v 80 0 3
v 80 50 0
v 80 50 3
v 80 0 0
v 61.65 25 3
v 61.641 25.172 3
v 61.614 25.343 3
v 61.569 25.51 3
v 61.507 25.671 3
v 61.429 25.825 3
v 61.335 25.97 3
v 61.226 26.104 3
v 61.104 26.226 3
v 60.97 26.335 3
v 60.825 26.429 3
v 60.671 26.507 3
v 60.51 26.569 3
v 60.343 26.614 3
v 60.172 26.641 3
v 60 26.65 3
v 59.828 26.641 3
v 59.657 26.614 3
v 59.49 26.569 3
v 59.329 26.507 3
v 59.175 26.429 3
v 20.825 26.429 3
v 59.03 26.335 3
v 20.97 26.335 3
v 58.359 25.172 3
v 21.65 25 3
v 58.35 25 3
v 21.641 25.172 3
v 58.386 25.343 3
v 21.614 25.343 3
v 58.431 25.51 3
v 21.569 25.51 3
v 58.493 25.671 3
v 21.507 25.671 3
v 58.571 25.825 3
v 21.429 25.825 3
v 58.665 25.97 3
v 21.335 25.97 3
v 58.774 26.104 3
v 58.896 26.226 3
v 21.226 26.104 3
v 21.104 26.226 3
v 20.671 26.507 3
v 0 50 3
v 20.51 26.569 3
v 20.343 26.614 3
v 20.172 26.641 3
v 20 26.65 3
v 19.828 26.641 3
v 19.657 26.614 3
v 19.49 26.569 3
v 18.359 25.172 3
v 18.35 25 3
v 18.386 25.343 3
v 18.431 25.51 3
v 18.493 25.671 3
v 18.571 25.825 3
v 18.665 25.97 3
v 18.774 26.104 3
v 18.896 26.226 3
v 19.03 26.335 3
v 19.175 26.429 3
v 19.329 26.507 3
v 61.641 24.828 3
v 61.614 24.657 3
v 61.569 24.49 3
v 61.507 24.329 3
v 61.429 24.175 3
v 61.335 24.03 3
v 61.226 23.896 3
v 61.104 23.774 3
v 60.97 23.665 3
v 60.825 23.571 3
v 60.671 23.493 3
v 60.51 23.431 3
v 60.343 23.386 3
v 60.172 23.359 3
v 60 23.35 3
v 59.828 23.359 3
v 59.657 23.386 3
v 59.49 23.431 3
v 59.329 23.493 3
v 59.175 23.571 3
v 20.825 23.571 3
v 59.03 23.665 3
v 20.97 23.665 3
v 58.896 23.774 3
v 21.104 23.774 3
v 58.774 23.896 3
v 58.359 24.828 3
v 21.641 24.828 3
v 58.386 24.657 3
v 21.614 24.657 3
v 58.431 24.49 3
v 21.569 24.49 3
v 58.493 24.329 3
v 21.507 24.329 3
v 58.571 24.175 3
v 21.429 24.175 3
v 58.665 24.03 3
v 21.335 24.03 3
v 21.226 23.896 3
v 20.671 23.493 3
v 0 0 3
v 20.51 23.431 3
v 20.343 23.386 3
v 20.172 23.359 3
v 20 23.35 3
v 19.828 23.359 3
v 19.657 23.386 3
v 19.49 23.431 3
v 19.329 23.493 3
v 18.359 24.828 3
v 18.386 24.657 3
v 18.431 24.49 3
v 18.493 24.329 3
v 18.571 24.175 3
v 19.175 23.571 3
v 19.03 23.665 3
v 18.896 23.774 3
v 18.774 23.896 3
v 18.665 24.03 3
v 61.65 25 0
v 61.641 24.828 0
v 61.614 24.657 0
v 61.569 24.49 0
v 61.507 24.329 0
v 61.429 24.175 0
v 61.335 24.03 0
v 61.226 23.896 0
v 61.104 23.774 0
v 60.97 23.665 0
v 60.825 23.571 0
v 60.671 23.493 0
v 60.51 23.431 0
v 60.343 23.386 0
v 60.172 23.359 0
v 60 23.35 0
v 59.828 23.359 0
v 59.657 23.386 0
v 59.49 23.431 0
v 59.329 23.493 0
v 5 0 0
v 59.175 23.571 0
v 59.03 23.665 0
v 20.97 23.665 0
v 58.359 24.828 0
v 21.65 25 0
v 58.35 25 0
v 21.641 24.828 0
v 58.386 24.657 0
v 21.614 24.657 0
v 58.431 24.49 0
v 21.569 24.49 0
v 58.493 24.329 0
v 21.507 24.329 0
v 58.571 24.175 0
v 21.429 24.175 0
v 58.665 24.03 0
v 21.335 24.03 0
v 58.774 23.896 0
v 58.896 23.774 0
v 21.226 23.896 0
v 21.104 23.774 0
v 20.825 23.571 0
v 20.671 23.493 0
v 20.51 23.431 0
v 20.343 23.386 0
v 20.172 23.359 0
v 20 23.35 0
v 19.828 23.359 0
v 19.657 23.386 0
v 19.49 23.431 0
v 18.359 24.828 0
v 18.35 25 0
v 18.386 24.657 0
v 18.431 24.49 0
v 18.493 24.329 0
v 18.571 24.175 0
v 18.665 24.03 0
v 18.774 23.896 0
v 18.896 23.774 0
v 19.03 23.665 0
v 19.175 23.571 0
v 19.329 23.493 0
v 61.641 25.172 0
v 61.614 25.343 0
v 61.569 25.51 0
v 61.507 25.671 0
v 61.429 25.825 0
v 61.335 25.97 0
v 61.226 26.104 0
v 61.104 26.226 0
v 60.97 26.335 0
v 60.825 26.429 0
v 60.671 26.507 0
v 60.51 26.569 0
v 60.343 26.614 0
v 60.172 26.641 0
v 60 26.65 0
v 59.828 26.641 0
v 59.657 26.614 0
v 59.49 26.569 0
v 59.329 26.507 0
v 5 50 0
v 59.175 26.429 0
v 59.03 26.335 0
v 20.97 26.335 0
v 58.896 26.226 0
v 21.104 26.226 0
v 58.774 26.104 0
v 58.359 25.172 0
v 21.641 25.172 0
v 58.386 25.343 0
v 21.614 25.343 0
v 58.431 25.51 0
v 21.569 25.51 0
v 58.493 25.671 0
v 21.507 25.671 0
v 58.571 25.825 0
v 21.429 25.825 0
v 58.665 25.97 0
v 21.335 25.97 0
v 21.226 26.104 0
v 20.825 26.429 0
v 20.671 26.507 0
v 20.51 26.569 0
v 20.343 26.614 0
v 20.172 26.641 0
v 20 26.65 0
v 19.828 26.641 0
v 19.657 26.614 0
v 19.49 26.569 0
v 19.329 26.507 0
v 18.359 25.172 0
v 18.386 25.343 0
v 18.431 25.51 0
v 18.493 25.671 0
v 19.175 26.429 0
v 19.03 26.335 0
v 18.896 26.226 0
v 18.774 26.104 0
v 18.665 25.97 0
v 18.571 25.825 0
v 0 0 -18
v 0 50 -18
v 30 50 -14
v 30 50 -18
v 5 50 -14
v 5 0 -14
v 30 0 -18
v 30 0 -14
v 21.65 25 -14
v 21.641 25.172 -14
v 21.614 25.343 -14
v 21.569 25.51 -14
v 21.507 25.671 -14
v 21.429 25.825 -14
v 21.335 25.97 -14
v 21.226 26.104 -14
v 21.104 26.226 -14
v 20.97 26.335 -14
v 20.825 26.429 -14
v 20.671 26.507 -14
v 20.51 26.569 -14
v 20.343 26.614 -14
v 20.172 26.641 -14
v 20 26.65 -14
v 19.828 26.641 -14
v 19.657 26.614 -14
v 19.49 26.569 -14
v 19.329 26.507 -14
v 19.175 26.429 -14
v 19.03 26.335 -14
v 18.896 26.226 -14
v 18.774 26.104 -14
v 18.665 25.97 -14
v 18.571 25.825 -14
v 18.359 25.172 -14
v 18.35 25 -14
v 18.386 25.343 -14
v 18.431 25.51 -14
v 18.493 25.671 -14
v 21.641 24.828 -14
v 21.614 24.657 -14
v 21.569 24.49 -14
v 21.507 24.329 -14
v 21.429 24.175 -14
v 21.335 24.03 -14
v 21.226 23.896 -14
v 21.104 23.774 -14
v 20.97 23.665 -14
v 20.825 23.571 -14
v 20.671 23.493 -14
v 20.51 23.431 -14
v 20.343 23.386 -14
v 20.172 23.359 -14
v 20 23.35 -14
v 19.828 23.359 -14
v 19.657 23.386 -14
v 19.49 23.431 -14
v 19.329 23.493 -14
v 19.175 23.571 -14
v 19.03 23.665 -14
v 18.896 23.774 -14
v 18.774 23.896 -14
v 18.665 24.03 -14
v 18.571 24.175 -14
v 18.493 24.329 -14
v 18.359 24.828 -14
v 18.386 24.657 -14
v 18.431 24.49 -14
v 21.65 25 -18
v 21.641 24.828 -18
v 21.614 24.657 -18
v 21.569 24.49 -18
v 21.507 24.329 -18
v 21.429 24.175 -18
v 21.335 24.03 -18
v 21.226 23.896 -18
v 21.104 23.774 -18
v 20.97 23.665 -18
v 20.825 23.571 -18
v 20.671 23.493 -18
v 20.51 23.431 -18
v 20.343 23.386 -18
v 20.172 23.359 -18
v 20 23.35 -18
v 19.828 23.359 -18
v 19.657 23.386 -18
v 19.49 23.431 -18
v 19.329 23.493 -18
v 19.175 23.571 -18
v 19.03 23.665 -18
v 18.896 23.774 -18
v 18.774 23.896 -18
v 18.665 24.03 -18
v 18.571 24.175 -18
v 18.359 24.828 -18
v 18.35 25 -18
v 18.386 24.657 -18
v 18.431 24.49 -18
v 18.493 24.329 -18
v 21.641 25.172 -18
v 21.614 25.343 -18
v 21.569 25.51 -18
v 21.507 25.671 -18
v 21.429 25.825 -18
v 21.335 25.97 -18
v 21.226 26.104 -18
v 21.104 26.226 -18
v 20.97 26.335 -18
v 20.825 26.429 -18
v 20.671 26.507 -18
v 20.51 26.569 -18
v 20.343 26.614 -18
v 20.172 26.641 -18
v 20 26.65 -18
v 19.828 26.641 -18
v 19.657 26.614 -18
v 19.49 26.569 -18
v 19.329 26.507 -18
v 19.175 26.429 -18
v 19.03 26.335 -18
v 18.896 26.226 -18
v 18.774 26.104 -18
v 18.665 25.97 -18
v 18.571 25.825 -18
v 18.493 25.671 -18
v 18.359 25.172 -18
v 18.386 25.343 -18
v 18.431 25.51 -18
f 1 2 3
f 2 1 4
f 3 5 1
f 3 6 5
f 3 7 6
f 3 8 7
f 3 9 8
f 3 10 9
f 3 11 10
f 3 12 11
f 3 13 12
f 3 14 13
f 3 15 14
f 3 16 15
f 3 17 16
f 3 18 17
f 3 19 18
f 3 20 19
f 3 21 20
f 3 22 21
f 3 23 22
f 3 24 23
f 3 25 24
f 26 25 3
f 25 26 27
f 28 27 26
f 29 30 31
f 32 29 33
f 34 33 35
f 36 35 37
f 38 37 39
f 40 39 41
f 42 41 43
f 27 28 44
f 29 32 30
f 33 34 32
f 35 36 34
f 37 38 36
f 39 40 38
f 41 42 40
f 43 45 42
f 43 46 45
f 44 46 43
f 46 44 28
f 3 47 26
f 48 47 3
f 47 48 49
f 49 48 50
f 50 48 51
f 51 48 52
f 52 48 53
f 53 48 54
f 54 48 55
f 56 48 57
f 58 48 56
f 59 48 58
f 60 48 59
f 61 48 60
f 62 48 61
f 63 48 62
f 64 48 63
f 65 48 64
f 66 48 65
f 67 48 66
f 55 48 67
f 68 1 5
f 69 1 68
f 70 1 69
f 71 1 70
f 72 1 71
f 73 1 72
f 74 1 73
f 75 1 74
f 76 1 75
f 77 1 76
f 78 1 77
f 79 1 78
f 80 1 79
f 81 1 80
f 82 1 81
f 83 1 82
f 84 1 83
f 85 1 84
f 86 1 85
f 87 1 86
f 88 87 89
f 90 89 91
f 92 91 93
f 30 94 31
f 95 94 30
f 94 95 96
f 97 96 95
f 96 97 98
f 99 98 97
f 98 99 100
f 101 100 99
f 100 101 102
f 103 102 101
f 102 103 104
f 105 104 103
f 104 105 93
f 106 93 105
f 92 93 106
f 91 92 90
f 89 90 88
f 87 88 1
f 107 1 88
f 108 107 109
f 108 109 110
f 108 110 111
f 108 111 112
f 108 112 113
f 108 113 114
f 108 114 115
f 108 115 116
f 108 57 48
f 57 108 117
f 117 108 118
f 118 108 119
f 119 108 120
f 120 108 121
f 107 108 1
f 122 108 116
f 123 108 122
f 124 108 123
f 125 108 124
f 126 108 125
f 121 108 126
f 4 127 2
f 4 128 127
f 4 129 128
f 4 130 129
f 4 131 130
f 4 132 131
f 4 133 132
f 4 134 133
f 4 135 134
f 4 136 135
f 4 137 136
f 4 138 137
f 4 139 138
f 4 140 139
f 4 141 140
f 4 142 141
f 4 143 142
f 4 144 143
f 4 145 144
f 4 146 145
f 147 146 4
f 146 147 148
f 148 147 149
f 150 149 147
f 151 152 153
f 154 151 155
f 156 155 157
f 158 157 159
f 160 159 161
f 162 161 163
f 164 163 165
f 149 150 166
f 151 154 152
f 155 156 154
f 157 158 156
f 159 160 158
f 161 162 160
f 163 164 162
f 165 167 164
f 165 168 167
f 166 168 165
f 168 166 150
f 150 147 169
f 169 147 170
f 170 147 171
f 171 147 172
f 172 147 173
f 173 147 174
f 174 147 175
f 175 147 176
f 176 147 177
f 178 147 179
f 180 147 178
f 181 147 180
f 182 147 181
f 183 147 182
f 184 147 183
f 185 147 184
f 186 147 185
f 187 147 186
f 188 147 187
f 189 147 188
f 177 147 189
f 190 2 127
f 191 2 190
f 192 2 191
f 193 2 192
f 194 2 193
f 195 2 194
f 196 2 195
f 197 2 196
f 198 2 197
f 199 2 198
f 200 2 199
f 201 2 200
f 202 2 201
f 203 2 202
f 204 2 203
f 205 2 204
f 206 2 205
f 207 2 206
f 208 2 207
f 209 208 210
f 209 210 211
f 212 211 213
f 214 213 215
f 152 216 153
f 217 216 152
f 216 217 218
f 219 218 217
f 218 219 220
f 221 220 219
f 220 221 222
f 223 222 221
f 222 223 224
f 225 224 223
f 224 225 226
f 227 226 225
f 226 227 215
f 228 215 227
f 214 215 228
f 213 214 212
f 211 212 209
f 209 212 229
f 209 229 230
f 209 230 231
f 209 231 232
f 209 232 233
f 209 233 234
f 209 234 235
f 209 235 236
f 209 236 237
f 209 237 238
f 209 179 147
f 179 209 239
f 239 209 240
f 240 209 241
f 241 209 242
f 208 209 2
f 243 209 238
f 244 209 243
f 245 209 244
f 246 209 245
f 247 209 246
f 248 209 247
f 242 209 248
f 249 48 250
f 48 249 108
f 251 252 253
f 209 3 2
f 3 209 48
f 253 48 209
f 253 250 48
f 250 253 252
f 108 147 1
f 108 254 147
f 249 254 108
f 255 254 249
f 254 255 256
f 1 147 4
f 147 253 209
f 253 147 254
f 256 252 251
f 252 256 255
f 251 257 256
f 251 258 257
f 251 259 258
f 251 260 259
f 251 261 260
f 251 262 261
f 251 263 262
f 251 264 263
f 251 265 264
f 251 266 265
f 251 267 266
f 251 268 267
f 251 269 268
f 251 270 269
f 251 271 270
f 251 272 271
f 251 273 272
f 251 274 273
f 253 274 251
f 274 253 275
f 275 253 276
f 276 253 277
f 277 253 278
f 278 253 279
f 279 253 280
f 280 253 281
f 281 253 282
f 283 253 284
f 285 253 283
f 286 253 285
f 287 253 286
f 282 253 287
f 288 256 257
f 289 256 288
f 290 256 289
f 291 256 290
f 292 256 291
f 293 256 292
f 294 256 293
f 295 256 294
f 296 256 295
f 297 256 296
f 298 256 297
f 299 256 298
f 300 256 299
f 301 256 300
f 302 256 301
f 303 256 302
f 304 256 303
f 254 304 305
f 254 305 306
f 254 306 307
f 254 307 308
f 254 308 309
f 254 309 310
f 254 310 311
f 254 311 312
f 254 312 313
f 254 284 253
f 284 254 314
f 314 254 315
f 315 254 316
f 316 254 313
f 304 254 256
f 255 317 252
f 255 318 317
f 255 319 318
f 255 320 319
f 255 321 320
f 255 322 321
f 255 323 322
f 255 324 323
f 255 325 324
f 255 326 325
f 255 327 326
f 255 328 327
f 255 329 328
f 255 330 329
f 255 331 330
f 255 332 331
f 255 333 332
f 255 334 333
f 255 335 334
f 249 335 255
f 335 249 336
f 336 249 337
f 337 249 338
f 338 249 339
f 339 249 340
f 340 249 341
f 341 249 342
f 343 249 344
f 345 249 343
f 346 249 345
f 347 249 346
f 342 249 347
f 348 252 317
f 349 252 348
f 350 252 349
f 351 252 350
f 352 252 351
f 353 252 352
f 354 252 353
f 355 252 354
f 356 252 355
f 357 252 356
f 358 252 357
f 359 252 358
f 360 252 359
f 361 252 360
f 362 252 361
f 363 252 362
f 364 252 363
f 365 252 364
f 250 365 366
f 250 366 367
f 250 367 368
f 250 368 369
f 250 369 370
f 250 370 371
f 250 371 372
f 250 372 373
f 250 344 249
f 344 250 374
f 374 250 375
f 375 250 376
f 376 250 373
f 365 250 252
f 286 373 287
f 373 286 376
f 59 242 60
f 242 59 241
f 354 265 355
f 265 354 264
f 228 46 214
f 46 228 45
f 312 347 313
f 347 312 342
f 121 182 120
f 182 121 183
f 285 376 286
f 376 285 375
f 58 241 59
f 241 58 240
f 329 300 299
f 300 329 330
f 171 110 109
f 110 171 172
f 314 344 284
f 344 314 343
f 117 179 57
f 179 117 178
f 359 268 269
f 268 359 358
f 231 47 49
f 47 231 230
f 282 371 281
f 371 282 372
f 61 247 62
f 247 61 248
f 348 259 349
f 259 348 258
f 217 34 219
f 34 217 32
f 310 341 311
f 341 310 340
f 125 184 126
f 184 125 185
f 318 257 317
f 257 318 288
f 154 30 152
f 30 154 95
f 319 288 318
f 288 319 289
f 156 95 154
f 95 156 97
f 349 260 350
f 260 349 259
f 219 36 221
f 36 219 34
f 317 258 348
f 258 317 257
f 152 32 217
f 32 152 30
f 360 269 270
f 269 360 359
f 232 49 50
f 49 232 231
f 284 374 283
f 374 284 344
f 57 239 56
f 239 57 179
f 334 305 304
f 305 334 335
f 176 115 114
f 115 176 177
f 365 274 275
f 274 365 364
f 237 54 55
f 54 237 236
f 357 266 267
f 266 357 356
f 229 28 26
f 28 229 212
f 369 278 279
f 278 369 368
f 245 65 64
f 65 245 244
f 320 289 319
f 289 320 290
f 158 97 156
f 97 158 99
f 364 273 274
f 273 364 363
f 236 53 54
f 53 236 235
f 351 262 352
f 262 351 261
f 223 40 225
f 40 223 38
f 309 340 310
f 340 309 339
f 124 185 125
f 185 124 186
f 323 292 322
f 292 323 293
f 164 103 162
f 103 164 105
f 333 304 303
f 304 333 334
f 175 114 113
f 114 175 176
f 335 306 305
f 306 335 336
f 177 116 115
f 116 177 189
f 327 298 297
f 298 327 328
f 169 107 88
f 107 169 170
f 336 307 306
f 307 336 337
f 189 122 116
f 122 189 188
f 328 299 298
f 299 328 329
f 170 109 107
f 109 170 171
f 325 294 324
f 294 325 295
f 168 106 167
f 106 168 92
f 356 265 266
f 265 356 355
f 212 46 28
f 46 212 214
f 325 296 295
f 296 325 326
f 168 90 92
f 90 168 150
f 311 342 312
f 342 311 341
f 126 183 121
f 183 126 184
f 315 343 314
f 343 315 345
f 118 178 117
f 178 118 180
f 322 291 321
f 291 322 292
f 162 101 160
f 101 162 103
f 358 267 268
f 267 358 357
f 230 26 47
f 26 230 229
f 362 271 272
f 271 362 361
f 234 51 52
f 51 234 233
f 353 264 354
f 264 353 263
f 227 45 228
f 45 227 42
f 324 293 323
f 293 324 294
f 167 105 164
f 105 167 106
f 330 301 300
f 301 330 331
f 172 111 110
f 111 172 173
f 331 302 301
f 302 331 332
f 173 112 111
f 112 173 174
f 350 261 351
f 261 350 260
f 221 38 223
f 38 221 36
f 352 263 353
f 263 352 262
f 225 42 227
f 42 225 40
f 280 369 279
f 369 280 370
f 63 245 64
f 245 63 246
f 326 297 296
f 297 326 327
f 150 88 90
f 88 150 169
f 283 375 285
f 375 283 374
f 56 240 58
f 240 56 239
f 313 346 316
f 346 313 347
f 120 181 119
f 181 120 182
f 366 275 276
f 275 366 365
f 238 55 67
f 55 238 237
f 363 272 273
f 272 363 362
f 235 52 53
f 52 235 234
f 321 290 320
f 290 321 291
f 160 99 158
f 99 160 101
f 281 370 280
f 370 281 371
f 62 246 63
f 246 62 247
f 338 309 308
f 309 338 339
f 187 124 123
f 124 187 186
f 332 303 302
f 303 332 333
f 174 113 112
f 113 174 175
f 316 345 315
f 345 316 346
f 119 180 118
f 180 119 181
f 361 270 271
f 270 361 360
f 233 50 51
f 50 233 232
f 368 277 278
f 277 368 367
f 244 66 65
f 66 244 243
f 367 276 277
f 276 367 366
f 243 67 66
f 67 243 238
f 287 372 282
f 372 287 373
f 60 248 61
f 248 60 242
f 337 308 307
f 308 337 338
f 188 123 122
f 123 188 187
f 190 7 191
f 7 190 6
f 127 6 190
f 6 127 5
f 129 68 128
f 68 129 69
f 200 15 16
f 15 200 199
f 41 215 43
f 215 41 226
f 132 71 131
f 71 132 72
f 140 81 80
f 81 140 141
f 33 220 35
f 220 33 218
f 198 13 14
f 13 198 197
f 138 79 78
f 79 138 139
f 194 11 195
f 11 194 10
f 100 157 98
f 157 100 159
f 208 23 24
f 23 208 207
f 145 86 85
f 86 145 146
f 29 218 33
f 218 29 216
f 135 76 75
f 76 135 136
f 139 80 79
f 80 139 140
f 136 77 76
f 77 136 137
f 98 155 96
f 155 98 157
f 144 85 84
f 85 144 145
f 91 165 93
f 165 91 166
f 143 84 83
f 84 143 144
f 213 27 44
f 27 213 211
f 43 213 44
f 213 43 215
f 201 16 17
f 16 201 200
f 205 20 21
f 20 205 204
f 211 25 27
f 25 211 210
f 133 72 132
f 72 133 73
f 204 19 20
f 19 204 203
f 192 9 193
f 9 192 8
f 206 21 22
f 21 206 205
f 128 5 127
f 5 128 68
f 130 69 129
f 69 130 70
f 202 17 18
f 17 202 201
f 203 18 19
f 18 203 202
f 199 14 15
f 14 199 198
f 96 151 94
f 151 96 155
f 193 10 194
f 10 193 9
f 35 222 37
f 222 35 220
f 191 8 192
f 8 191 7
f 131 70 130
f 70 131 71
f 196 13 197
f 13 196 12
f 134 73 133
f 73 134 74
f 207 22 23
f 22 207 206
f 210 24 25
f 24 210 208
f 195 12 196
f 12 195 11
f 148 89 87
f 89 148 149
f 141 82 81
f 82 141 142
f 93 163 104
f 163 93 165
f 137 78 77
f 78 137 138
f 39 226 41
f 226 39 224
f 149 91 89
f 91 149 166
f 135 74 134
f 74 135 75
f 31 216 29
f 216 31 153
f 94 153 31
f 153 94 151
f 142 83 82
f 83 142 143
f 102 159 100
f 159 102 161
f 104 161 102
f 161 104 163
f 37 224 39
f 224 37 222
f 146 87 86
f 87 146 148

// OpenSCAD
// file: ../00_common/parameters.scad
// =============================================================================
// OpenMotorBridge - Global CAD Parameters & Settings
// =============================================================================
// File: hardware/cad/scad/00_common/parameters.scad
// Description: Global dimensional constants, manufacturing clearances and
//              circle resolution ($fn) for all OpenSCAD modules.
// =============================================================================

// --- 1. Circle & Curve Resolution ---
$fn = 60; // Smooth cylinders and holes for high-quality MJF 3D printing

// --- 2. Central Main Box Dimensions (3-Tier Sandwich) ---
MAIN_BOX_OUTER_L      = 110.0; // Outer length in X (mm)
MAIN_BOX_OUTER_W      = 74.0;  // Outer width in Y (mm)
MAIN_BOX_LOWER_H      = 17.0;  // Lower case height in Z (mm)
MAIN_BOX_MID_H        = 15.0;  // Mid tray height in Z (mm)
MAIN_BOX_LID_H        = 4.0;   // Lid plate thickness in Z (mm)
MAIN_BOX_WALL         = 2.5;   // Nominal wall thickness (mm)
MAIN_BOX_CORNER_POST  = 5.0;   // Corner clamping screw post size (mm)

// --- 3. Satellite Pod Dimensions (Universal 1-Pod Housing) ---
POD_OUTER_L           = 100.0; // Outer length in X (mm)
POD_OUTER_W           = 60.0;  // Outer width in Y (mm)
POD_OUTER_H           = 28.0;  // Outer height in Z (mm)
POD_WALL              = 2.5;   // Nominal wall thickness (mm)
POD_BULKHEAD_X        = 22.0;  // Partition bulkhead position in X (mm)
POD_CHAMBER_L         = 78.0;  // Sliding chamber length in X (mm)
POD_CHAMBER_W         = 55.0;  // Sliding chamber width in Y (mm)
POD_CHAMBER_H         = 23.0;  // Sliding chamber height in Z (mm)

// --- 4. Pod Linear Guide Rails (Poka-Yoke Tongue & Groove) ---
POD_GROOVE_W          = 3.0;   // Internal guide groove width in Z (mm)
POD_GROOVE_DEPTH      = 1.5;   // Internal guide groove depth in Y (mm)
POD_GROOVE_LEFT_Z     = 8.2;   // Center height of left groove (mm)
POD_GROOVE_RIGHT_Z    = 14.2;  // Center height of right groove (mm, asym offset)

CARTRIDGE_TONGUE_W    = 2.6;   // Cartridge tongue rail height in Z (mm, 0.2mm clearance)
CARTRIDGE_TONGUE_PROT = 1.4;   // Cartridge tongue protrusion in Y (mm, 0.1mm clearance)
CARTRIDGE_CHAMFER_L   = 4.0;   // 30° lead-in chamfer nose length (mm)

// --- 5. Cartridge Dimensions ---
CARTRIDGE_BASE_L      = 75.0;  // Sled length in X (mm)
CARTRIDGE_BASE_W      = 54.0;  // Sled width in Y (mm)
CARTRIDGE_BASE_H      = 20.5;  // Sled height in Z (mm)
CARTRIDGE_FACE_L      = 4.0;   // Front faceplate thickness in X (mm)
CARTRIDGE_FACE_W      = 58.0;  // Front faceplate width in Y (mm)
CARTRIDGE_FACE_H      = 25.0;  // Front faceplate height in Z (mm)

// --- 6. Thermal Copper Studs (Kühlbolzen) ---
COPPER_STUD_DIA       = 8.0;   // Diameter of thermal copper studs (mm)
COPPER_STUD_R         = COPPER_STUD_DIA / 2.0; // Radius = 4.0 mm

// Main Box Thermal Stud Positions (4x in lower case floor)
MAIN_BOX_CU_POS = [
    [35.0, 25.0], // Position 1 (LM5164 DCDC Buck Regulator)
    [45.0, 25.0], // Position 2 (BQ25798 LiPo Charger)
    [30.0, 48.0], // Position 3 (ESP32-S3 Dual-Core SoC)
    [70.0, 40.0]  // Position 4 (Automotive TVS & LC Filter Zone)
];

// Pod & Cartridge Thermal Stud Positions (2x in floor)
POD_CU_POS = [
    [42.0, 30.0], // Forward thermal zone
    [72.0, 30.0]  // Rearward thermal zone
];

// --- 7. Screw & Clearance Dimensions ---
M2_SCREW_HOLE_R       = 1.1;   // M2 clearance hole (r = 1.1 mm -> Ø 2.2 mm)
M2_5_SCREW_HOLE_R     = 1.4;   // M2.5 clearance hole (r = 1.4 mm -> Ø 2.8 mm)
M3_SCREW_HOLE_R       = 1.65;  // M3 clearance hole (r = 1.65 mm -> Ø 3.3 mm)
M4_SCREW_HOLE_R       = 2.2;   // M4 clearance hole (r = 2.2 mm -> Ø 4.4 mm)
M8_BORE_R             = 4.0;   // M8 cable through-bore (r = 4.0 mm -> Ø 8.0 mm)
M8_STUDS_OUTER_R      = 6.0;   // M8 neck outer radius (Ø 12.0 mm)
// main file
// =============================================================================
// OpenMotorBridge - Satellite Pod: Helmet Clamp Mounting Bracket (Pod 1 & 2)
// =============================================================================
// File: hardware/cad/scad/02_pod_base/pod_mount_helmet_clamp.scad
// Description: Ergonomic helmet shell clamping bracket for left/right helmet mounting.
// =============================================================================

include <../00_common/parameters.scad>;

module pod_mount_helmet_clamp(base_l=80.0, base_w=50.0, base_t=3.0, jaw_h=15.0) {
    difference() {
        union() {
            // 1. Base Plate (Bolts/clips to Pod bottom)
            cube(size=[base_l, base_w, base_t], center=false);

            // 2. Vertical Helmet Shell Drop Bracket
            translate([0, 0, -jaw_h])
                cube(size=[5.0, base_w, jaw_h], center=false);

            // 3. Inner Helmet Clamping Jaw (with 4° inward spring tension angle)
            translate([0, 0, -jaw_h - 3.0])
                cube(size=[30.0, base_w, 4.0], center=false);
        }

        // 4. 2x M3 Mounting Counterbores (to Pod base)
        translate([20.0, base_w/2.0, -jaw_h - 4.0])
            cylinder(r=M3_SCREW_HOLE_R, h=jaw_h + 10.0, center=false);
        translate([60.0, base_w/2.0, -jaw_h - 4.0])
            cylinder(r=M3_SCREW_HOLE_R, h=jaw_h + 10.0, center=false);
    }
}

// Render complete helmet clamp
pod_mount_helmet_clamp();
